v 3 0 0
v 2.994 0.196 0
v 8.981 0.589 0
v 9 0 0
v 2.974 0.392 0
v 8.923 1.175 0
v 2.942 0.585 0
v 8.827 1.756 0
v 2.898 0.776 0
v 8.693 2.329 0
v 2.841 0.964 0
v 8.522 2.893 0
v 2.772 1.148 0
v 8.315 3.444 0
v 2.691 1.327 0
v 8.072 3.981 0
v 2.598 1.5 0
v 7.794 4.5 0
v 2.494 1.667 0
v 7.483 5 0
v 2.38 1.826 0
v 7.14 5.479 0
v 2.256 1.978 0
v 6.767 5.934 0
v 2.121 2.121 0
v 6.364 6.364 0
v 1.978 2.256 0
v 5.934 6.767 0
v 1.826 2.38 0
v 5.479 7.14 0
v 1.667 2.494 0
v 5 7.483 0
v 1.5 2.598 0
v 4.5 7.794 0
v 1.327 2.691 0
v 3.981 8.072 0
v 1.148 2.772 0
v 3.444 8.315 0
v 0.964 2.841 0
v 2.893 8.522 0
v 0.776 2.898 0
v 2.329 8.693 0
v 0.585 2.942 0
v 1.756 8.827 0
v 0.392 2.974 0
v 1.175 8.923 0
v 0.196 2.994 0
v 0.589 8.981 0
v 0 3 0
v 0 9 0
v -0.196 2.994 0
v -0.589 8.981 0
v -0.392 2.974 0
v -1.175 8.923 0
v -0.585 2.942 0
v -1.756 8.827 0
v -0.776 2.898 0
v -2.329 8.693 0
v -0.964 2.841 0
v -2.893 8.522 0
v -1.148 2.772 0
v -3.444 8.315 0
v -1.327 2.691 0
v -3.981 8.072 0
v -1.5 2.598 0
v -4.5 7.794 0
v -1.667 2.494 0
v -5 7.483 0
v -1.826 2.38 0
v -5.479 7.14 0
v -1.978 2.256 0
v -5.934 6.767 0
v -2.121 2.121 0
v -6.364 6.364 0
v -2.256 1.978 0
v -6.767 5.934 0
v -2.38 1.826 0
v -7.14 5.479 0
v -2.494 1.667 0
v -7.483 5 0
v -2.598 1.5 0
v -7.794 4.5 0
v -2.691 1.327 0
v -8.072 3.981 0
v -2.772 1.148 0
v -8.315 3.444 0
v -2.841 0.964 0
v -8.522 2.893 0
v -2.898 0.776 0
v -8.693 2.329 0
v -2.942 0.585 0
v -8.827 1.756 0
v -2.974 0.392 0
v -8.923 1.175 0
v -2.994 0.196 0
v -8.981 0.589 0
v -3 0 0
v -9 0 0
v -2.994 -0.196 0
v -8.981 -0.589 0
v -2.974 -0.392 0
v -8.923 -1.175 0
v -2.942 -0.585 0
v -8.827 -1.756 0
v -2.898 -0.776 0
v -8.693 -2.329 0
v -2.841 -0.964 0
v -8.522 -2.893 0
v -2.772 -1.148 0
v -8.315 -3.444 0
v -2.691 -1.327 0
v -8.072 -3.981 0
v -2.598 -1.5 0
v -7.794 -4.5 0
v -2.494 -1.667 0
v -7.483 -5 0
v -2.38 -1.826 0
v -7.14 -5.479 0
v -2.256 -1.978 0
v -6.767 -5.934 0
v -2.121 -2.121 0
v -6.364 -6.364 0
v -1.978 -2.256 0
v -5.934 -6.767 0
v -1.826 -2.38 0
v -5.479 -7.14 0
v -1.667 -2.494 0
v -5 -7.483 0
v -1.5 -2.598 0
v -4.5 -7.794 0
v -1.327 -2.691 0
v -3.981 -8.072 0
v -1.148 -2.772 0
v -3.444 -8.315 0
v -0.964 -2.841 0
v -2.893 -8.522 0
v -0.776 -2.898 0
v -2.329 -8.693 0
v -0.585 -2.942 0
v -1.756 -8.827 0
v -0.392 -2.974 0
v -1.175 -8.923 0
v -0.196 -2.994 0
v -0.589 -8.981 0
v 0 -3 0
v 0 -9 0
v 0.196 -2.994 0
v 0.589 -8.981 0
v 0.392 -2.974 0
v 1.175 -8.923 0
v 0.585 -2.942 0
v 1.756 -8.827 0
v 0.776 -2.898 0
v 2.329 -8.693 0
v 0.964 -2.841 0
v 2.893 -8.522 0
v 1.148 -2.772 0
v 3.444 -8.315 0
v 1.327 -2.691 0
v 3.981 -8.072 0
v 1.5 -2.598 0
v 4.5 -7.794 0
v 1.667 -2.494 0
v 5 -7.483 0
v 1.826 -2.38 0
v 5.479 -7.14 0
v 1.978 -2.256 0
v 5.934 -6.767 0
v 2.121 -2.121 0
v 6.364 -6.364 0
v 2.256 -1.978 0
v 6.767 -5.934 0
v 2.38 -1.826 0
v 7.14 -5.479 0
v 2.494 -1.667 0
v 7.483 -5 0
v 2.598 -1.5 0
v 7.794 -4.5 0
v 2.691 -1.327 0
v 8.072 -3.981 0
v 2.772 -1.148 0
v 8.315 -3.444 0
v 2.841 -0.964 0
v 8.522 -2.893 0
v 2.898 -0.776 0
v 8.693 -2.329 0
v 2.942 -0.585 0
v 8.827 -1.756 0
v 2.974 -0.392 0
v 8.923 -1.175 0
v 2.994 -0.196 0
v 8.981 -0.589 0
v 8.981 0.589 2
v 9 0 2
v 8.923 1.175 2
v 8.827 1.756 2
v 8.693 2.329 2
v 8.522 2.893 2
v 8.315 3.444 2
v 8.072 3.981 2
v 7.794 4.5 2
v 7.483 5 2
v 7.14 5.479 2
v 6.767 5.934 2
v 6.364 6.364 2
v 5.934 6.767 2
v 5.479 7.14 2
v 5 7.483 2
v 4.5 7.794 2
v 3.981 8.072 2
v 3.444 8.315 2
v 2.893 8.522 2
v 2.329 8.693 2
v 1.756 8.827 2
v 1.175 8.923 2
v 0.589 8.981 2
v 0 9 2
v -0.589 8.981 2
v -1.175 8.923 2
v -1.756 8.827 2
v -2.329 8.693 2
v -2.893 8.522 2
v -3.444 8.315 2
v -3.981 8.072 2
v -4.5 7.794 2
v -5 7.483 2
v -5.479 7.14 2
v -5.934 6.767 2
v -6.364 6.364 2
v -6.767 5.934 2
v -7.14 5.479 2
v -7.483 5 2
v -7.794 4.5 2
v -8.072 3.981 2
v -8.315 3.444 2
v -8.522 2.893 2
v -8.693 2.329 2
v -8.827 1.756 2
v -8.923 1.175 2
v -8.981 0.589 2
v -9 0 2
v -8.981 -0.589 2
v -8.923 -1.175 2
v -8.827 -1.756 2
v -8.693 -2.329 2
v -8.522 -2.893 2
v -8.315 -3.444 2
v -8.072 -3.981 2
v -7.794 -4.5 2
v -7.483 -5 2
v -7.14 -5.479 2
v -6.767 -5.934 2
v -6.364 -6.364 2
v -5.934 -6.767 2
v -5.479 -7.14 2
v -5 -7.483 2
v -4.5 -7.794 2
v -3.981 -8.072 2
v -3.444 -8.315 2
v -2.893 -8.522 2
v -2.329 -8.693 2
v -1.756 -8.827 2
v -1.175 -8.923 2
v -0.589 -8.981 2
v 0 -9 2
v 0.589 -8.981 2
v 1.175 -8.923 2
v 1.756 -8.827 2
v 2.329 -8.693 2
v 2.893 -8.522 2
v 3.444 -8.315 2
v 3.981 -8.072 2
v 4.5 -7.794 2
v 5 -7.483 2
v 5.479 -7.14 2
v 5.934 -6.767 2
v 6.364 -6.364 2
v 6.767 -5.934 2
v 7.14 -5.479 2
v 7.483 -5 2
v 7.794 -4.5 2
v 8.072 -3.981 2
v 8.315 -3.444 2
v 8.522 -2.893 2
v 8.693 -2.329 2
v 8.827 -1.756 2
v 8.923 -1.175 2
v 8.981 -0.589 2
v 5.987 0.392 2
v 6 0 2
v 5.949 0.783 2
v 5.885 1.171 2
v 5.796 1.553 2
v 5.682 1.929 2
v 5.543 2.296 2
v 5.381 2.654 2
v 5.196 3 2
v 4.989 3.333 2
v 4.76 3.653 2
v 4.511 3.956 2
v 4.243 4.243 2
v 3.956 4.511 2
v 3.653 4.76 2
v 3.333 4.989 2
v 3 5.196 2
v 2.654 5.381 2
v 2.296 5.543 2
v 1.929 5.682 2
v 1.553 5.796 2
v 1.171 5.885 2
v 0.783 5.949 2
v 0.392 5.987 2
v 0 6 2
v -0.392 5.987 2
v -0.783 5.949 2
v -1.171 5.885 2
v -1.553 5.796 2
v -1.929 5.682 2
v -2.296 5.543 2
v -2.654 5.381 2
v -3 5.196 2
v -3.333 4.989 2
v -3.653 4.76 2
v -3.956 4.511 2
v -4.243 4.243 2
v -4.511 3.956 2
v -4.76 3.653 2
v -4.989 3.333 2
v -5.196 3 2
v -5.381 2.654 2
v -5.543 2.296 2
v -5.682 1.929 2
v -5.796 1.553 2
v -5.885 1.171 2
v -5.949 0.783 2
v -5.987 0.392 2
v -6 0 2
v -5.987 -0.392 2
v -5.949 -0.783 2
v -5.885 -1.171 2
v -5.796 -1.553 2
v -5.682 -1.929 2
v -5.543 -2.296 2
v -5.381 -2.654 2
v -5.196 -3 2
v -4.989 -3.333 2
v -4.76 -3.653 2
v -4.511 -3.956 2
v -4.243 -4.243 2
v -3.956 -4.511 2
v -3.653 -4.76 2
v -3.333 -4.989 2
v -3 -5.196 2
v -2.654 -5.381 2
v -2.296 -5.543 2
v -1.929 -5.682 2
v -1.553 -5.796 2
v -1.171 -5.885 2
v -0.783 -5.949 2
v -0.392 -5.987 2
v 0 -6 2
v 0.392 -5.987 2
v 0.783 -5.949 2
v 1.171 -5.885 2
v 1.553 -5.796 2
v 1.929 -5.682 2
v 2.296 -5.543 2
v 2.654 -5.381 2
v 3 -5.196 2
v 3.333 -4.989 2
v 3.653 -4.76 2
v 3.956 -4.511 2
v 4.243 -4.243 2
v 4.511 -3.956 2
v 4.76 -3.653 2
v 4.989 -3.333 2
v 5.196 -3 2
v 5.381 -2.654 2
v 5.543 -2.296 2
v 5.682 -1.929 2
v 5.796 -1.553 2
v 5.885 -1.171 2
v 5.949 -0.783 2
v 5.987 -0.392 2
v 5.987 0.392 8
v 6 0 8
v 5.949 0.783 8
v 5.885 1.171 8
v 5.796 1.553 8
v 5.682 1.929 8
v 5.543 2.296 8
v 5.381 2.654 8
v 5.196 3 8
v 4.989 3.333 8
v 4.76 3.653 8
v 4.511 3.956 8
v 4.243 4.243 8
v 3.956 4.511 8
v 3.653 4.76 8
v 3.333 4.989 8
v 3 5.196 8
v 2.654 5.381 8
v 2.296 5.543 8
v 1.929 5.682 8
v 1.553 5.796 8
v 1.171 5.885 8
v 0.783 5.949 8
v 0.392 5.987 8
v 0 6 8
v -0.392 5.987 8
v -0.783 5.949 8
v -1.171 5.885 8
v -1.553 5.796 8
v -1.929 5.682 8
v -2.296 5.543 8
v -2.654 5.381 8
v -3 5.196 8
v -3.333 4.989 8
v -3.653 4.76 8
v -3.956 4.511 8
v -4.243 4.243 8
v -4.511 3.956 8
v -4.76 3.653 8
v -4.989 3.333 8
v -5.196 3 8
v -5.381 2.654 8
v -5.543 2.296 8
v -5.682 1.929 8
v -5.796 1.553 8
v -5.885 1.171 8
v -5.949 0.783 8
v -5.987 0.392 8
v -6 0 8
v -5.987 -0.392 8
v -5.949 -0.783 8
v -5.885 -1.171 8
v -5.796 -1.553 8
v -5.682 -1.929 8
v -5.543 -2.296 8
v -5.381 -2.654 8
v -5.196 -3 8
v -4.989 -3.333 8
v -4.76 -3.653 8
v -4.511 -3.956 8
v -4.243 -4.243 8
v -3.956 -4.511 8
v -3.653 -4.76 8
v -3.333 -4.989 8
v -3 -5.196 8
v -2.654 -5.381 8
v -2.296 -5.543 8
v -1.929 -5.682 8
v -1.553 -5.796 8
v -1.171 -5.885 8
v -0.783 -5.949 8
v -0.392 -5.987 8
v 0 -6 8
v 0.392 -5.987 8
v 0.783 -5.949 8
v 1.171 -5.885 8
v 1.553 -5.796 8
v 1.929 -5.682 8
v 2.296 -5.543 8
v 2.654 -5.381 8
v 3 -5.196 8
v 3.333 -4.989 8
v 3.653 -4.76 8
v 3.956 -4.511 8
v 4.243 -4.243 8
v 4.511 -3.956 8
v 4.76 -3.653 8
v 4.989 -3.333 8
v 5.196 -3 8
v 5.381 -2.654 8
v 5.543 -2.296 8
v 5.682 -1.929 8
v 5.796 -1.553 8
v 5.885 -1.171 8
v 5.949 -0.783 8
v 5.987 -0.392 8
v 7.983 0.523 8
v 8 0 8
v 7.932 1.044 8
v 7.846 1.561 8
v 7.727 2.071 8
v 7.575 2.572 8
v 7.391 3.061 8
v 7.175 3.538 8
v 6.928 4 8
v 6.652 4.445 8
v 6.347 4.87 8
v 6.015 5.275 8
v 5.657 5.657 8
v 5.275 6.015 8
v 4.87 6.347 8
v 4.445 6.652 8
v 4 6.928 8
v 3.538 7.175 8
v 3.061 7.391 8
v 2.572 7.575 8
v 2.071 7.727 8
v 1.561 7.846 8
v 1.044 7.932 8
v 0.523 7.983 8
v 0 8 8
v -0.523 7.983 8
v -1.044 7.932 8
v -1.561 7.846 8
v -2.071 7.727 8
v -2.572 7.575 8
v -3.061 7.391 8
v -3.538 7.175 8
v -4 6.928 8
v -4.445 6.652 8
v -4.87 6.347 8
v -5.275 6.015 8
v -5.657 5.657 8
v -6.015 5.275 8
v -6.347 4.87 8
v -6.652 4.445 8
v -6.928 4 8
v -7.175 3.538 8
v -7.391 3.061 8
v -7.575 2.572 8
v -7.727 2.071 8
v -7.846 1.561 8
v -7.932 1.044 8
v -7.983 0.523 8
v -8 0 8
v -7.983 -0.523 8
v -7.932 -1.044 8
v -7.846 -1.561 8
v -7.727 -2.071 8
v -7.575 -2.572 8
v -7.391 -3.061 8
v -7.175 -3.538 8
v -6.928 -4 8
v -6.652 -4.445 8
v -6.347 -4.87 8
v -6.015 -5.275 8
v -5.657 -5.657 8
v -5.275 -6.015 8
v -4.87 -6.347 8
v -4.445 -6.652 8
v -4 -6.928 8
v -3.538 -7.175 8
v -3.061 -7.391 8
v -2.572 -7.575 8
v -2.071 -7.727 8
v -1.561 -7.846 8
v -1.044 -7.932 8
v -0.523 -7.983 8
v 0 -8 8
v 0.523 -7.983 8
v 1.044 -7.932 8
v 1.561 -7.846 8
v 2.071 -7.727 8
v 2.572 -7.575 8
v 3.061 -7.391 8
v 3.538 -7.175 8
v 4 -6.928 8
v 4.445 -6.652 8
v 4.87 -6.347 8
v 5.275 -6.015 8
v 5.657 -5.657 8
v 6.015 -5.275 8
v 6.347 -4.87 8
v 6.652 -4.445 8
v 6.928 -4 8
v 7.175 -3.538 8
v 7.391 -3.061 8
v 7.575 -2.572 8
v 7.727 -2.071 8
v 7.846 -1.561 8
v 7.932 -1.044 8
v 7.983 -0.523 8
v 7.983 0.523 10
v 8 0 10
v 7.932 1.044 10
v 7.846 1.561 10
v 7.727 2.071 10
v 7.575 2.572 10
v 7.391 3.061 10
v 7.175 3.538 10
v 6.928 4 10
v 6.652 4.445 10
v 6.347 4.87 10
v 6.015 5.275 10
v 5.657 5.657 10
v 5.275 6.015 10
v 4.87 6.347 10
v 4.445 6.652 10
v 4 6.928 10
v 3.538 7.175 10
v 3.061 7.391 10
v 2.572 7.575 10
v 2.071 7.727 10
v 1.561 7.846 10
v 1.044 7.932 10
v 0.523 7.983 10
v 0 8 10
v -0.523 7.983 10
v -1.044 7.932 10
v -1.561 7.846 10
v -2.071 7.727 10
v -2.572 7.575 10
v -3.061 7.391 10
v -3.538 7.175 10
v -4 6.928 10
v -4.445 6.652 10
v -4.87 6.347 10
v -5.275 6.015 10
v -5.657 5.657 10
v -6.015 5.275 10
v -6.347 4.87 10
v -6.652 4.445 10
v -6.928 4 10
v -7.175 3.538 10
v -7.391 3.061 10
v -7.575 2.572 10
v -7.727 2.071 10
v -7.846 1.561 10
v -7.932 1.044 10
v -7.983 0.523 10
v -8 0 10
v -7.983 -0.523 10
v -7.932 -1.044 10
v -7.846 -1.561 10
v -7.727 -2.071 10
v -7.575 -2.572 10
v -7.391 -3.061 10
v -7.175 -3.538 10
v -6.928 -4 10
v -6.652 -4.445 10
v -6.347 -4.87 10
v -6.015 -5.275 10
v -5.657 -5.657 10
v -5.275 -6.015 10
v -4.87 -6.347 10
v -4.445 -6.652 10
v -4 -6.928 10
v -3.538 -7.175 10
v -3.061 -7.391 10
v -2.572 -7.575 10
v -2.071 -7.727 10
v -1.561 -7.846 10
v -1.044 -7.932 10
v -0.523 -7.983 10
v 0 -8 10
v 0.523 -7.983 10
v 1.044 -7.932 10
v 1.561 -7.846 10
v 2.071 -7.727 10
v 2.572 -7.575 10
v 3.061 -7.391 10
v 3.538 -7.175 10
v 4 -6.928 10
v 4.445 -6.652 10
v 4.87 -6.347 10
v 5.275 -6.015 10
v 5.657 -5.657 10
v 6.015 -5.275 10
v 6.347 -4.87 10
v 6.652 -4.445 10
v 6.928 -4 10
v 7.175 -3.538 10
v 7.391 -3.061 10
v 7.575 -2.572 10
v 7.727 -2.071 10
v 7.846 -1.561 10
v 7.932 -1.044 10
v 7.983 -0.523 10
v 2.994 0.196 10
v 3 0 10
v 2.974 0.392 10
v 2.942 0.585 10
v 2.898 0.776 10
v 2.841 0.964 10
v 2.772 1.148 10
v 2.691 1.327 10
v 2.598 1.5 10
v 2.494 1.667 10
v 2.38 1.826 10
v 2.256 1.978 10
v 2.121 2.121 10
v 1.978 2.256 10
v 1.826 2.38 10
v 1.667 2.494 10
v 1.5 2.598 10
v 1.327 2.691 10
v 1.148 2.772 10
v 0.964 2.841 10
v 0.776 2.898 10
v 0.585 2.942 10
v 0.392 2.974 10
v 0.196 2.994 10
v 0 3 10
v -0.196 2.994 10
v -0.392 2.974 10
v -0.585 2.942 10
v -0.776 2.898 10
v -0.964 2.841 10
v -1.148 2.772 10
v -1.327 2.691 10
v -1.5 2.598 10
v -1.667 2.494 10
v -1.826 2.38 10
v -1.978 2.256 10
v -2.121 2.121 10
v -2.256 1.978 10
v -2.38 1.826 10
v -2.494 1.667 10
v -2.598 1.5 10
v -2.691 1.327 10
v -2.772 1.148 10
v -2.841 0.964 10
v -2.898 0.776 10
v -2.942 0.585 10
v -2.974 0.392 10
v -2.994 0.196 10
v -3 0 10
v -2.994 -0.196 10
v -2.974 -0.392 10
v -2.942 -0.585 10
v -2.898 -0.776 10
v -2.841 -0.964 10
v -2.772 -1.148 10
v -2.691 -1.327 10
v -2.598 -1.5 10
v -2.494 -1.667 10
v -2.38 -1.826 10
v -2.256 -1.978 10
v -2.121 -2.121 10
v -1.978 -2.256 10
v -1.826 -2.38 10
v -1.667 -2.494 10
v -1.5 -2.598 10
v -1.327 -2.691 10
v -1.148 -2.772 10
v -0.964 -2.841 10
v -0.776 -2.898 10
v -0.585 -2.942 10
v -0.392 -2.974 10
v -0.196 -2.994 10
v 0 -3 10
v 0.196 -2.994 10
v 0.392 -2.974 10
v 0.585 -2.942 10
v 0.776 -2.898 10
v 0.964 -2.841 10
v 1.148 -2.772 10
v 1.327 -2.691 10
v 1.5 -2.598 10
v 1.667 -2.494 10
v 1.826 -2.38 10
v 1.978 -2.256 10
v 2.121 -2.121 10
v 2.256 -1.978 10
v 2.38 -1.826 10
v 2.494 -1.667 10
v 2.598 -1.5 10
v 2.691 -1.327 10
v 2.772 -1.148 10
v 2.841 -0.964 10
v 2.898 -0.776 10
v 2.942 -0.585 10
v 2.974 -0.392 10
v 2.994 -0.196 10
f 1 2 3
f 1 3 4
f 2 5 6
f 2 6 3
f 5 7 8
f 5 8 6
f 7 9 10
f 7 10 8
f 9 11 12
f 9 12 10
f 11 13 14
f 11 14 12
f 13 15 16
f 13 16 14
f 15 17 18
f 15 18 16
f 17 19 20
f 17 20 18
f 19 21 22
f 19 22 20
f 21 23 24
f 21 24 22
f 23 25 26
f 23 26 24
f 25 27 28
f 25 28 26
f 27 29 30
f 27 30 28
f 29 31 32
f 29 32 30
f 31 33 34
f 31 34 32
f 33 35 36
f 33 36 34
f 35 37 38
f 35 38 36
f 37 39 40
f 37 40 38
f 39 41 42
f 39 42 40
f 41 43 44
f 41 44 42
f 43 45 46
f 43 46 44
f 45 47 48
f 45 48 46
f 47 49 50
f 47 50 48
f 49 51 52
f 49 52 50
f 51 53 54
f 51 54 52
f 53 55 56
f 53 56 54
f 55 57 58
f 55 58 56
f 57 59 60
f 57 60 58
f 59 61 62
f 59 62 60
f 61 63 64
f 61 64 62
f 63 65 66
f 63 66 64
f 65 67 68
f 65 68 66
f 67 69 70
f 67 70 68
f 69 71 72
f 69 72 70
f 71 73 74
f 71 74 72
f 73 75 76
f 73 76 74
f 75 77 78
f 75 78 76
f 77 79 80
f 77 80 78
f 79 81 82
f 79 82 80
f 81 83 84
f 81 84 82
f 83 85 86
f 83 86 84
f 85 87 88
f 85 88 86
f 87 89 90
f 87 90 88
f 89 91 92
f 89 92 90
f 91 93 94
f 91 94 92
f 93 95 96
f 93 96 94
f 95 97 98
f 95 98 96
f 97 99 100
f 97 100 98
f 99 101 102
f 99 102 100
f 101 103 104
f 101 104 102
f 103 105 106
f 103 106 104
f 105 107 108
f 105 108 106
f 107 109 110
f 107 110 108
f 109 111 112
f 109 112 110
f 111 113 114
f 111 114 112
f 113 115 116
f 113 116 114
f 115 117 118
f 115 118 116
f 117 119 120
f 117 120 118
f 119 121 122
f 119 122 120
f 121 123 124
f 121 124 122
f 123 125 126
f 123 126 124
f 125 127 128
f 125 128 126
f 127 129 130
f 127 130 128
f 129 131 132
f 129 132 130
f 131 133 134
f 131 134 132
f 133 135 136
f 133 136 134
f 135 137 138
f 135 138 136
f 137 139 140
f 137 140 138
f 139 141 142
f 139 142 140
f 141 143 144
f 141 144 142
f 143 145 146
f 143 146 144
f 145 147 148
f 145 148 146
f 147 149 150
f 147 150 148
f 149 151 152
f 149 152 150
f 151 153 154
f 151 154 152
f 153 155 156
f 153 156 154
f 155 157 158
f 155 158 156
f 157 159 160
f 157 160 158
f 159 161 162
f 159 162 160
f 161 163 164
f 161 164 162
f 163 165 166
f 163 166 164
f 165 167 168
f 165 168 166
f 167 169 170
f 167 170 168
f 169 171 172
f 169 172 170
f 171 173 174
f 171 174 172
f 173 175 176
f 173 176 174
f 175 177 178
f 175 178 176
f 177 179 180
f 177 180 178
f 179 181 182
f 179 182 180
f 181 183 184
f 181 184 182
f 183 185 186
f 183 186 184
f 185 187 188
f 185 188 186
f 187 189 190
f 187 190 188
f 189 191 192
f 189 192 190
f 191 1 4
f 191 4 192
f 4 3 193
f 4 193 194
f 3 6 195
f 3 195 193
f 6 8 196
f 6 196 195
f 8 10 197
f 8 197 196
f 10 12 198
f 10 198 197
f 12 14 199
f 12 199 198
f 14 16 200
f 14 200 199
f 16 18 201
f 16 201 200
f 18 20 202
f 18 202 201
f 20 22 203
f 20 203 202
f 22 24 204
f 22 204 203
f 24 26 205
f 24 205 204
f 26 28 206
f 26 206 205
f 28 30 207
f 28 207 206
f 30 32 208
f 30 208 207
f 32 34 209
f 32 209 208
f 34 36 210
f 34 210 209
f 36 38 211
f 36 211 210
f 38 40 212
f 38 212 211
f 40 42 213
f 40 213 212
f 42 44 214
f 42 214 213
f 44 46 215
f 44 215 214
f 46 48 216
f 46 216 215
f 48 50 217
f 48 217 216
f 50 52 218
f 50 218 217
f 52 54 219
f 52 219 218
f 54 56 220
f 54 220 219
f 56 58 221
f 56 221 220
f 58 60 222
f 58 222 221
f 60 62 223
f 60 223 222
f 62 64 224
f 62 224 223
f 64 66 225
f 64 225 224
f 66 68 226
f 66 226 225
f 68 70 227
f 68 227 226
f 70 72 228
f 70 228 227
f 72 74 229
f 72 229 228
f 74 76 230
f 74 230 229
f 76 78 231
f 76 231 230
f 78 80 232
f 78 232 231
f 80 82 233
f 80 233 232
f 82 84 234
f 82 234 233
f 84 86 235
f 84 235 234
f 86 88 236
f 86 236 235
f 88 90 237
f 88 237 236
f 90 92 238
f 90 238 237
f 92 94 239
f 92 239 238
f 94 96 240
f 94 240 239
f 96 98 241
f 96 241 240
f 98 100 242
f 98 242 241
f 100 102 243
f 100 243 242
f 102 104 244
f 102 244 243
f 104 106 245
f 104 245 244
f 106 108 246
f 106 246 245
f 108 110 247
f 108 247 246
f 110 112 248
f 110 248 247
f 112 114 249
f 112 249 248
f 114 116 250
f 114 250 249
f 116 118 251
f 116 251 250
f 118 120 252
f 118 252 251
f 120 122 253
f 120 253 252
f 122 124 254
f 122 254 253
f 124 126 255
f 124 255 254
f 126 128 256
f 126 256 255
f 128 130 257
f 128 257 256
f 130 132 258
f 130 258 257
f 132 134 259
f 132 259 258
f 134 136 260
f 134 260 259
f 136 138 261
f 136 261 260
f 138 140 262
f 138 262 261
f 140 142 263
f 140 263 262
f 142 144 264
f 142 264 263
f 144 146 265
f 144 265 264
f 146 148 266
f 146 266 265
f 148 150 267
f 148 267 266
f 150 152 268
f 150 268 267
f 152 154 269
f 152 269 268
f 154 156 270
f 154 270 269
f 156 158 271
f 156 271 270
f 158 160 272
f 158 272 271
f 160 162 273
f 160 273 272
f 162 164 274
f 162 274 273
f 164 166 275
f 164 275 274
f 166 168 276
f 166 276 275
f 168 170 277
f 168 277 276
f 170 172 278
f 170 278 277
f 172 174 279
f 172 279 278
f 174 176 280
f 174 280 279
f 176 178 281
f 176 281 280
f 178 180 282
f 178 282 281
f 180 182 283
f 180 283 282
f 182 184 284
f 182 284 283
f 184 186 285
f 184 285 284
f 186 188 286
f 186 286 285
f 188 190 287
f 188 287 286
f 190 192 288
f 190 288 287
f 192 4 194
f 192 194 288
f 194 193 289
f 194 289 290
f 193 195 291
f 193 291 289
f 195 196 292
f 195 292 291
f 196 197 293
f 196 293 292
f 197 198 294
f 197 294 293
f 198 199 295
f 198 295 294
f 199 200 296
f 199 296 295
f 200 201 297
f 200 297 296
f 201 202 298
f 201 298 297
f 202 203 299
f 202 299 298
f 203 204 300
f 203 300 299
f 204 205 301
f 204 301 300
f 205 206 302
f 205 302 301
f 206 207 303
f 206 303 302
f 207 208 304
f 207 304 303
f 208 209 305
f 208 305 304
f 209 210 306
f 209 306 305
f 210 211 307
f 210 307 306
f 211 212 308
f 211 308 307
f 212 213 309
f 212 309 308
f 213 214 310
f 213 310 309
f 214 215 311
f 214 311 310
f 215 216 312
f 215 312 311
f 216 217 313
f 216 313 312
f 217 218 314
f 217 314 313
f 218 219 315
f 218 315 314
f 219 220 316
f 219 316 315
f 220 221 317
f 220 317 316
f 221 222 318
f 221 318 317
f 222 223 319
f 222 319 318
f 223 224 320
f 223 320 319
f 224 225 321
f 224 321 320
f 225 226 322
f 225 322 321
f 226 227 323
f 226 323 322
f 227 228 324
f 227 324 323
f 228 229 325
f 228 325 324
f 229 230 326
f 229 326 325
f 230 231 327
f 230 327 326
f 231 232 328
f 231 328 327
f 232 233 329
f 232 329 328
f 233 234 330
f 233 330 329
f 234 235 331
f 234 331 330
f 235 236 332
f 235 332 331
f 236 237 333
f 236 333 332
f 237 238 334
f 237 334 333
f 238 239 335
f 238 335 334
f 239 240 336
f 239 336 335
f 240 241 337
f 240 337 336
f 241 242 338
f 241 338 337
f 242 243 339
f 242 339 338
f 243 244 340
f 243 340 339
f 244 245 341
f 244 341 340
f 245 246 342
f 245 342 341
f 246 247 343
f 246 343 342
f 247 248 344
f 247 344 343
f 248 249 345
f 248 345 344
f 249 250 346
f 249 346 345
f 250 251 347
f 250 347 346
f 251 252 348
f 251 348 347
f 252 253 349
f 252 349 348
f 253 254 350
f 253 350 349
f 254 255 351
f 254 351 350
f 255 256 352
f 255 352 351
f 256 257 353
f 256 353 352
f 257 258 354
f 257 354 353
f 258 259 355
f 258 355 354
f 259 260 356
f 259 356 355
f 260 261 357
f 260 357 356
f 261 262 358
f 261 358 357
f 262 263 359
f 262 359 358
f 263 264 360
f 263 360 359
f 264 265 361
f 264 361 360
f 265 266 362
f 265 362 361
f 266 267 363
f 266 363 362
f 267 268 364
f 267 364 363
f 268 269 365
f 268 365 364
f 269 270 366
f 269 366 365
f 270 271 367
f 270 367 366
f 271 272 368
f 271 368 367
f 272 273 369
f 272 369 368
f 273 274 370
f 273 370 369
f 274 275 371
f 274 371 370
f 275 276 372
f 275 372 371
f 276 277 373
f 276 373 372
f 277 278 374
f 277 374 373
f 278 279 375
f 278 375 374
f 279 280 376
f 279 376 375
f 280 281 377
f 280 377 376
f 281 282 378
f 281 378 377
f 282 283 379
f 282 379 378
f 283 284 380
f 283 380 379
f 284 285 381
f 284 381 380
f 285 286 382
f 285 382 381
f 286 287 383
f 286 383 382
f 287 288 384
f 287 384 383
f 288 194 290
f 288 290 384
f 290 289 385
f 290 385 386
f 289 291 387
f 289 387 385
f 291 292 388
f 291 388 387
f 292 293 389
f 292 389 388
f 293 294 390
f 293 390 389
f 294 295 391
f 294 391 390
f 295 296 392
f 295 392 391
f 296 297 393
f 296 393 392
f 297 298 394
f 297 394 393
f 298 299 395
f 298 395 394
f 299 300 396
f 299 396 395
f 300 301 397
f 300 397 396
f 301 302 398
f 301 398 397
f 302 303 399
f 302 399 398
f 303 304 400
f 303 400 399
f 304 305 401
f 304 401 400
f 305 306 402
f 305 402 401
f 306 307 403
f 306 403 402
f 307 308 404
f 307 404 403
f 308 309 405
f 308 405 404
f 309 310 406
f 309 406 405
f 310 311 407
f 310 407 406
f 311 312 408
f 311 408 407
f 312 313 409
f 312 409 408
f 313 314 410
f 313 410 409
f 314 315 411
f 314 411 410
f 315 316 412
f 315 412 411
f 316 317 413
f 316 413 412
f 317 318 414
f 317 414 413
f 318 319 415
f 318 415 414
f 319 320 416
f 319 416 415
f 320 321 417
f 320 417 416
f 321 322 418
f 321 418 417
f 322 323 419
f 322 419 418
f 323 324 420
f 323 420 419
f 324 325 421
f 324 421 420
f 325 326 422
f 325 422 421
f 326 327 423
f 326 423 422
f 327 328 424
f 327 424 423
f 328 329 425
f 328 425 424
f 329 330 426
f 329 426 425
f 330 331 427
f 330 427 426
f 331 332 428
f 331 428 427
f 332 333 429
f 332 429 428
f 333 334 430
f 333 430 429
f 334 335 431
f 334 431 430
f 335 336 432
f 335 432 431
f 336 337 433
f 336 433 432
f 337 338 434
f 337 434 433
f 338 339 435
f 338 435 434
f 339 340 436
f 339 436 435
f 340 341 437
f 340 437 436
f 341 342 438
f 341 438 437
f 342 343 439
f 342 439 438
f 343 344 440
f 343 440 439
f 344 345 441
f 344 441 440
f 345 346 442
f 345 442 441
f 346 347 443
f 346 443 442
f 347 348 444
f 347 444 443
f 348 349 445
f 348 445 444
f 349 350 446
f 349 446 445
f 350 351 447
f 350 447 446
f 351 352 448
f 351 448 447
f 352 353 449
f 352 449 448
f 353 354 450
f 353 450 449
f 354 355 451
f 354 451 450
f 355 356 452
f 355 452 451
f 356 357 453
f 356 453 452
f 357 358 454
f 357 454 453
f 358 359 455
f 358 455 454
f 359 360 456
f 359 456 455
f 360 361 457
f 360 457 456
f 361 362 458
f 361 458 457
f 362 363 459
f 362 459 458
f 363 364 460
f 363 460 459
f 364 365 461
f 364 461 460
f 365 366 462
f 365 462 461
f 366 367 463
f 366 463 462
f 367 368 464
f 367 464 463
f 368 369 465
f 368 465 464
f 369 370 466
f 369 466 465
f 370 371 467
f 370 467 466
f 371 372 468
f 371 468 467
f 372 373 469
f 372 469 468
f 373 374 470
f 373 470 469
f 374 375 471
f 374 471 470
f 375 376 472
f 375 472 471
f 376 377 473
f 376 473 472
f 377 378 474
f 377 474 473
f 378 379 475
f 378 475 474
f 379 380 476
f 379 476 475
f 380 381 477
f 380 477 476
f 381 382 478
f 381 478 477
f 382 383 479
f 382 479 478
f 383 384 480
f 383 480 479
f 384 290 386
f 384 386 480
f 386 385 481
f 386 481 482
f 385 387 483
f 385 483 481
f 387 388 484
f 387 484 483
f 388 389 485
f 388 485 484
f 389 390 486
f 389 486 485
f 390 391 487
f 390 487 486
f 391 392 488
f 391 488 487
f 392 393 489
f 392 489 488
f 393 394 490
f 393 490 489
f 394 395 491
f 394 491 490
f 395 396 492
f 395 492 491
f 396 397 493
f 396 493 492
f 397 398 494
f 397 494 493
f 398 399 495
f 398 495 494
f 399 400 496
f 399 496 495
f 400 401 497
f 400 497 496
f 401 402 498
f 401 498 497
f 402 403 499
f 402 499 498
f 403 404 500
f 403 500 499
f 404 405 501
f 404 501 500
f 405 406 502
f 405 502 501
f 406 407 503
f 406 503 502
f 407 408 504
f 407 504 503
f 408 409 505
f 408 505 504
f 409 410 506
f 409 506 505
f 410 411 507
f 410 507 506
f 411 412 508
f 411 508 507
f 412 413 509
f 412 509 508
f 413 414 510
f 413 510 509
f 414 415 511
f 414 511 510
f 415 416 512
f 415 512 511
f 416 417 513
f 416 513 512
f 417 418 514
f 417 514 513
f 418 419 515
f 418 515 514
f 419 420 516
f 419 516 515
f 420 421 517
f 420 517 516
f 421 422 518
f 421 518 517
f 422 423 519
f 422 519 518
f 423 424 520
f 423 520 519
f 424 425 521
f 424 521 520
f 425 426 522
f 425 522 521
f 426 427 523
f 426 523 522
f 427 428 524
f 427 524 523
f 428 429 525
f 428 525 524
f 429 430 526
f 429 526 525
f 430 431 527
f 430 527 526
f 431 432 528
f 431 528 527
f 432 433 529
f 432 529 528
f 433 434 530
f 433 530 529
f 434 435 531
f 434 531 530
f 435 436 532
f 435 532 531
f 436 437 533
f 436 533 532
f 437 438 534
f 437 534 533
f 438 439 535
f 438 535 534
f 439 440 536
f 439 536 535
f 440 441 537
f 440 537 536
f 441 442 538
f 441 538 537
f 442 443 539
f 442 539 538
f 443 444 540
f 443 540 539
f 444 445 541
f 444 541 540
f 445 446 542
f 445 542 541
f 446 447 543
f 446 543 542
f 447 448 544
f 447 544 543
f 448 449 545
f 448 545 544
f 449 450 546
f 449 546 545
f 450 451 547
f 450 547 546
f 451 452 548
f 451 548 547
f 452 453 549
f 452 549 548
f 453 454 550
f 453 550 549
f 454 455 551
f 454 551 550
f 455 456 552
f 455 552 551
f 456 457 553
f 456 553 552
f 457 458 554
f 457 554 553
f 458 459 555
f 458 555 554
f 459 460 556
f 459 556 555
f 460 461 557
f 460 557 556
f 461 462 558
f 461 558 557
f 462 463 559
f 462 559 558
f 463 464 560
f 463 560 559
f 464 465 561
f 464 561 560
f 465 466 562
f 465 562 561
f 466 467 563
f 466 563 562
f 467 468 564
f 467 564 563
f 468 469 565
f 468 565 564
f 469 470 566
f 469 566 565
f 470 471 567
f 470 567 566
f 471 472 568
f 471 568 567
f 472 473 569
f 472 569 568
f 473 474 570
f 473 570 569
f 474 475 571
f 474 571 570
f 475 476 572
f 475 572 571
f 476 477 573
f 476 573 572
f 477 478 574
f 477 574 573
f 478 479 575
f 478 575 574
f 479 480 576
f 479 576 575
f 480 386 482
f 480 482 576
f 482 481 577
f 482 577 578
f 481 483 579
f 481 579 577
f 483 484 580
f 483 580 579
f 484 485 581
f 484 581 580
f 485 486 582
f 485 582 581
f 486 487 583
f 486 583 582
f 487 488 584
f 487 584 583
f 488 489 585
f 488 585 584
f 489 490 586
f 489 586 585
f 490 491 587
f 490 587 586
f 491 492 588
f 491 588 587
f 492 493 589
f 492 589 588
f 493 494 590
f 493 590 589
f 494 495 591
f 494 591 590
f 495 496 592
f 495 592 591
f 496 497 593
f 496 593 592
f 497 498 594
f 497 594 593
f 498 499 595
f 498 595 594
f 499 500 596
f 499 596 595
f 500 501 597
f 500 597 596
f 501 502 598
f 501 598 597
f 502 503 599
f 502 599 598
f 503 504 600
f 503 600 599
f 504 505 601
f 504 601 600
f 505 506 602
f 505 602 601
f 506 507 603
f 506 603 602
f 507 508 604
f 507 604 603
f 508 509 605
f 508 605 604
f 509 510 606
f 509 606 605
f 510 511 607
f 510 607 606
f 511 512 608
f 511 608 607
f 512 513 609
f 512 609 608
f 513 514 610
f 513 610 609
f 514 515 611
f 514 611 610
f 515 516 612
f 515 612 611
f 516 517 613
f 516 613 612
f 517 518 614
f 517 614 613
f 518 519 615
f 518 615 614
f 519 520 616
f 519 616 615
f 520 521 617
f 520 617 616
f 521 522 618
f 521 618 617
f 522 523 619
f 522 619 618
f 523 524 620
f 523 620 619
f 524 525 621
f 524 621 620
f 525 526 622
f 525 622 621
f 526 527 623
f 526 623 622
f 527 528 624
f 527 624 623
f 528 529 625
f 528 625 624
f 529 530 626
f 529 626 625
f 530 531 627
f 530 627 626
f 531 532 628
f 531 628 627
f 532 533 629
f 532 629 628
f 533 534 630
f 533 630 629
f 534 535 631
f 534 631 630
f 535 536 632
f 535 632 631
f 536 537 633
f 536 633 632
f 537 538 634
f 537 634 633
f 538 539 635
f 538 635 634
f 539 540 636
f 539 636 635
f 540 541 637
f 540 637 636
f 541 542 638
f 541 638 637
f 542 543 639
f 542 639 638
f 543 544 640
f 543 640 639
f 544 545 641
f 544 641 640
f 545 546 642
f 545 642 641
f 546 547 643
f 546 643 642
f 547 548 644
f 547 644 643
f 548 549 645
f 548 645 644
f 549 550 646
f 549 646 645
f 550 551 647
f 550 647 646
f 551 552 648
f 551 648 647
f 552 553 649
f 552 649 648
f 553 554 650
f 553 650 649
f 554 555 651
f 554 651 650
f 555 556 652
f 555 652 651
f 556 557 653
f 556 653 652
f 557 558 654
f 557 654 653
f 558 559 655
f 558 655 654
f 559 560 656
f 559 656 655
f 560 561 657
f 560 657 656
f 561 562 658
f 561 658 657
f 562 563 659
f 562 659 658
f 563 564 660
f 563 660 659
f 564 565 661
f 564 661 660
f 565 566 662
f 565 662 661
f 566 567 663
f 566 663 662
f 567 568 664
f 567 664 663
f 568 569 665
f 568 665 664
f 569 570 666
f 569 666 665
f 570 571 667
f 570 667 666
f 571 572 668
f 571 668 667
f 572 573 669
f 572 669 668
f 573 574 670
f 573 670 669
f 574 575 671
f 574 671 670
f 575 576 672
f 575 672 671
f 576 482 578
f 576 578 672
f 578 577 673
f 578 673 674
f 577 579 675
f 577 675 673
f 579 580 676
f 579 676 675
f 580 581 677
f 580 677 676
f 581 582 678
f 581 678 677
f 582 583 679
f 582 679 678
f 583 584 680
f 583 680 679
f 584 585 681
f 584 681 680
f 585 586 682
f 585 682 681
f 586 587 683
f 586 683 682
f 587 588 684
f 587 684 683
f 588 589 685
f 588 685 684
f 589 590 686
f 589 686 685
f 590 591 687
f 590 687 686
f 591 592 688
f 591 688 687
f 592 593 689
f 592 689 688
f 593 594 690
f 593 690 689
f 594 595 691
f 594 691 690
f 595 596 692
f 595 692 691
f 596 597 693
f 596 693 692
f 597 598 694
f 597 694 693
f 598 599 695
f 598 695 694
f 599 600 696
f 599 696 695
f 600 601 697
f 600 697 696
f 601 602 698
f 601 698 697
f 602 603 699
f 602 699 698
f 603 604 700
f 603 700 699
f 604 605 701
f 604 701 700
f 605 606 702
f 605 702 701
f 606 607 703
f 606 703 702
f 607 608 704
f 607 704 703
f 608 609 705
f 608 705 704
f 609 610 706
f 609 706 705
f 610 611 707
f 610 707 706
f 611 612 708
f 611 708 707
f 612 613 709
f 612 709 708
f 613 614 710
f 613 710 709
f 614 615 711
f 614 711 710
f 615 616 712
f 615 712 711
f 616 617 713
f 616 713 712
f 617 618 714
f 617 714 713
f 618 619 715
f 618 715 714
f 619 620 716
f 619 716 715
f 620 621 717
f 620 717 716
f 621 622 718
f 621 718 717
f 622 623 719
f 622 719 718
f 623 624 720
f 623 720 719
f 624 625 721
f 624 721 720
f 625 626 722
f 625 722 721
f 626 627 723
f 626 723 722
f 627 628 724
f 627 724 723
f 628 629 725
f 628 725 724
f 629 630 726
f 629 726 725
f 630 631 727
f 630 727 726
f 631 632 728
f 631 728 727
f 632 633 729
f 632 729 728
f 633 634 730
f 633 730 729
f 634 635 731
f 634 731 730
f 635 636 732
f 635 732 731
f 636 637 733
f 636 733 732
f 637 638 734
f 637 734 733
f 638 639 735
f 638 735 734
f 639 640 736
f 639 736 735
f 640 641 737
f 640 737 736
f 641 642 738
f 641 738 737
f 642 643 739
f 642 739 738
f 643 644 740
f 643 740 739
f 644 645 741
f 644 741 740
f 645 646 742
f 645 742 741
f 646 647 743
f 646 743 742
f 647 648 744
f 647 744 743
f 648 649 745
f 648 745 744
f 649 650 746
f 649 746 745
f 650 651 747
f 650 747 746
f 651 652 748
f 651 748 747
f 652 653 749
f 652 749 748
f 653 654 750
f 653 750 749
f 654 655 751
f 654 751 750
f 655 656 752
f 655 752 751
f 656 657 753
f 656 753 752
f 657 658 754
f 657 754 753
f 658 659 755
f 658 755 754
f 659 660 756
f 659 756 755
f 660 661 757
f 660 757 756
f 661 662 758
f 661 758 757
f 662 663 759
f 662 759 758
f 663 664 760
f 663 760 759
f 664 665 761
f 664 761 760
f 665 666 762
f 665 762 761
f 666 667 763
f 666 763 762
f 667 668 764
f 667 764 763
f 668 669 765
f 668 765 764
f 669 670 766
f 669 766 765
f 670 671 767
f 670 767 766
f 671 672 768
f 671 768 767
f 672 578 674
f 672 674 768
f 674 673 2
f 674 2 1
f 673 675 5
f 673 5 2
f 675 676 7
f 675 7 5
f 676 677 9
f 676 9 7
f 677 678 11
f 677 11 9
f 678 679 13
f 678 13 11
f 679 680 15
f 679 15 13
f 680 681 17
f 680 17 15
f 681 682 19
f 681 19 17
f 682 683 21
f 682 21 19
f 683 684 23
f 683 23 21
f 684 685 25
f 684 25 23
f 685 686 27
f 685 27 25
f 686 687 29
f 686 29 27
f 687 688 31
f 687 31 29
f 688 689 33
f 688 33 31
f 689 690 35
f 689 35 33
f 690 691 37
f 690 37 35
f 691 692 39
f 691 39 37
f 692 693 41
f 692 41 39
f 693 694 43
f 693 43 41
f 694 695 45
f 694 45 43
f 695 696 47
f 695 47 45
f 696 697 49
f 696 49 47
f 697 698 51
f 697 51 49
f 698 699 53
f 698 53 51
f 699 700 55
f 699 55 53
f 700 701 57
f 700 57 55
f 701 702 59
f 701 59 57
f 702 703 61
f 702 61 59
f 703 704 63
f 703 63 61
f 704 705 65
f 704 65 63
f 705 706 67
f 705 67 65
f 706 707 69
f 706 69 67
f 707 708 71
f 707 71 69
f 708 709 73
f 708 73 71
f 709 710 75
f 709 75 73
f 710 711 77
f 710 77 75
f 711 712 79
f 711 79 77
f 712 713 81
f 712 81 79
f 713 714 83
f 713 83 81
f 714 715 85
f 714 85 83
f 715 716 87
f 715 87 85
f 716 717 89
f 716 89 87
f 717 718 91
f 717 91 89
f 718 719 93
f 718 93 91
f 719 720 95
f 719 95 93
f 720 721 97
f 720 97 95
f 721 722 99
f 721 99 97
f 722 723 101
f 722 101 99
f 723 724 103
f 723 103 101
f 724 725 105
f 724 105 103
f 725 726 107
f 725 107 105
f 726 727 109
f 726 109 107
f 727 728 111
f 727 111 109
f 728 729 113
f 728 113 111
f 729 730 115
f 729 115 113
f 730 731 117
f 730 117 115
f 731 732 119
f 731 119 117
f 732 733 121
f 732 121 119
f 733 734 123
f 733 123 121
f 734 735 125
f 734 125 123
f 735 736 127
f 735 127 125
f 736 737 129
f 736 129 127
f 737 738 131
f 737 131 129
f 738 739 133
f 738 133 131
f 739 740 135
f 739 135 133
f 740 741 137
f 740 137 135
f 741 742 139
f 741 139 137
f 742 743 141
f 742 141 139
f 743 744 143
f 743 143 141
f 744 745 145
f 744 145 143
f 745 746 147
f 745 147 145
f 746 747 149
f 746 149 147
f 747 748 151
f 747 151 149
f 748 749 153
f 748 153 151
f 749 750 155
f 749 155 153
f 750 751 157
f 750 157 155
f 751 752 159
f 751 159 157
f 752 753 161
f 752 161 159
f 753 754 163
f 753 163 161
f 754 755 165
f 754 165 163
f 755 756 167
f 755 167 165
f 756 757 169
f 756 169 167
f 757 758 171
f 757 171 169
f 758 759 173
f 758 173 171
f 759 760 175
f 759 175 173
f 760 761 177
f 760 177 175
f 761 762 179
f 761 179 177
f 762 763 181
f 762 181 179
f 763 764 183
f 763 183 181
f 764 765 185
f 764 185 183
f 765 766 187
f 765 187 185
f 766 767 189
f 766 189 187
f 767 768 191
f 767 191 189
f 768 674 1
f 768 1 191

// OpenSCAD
// Original MechIntel educational model. CC0-1.0. Units: mm.
// Not a standardized or load-rated component.
$fn=96;
// Section points: [radius, height], mm. Edit to change the profile.
section=[[3, 0], [9, 0], [9, 2], [6, 2], [6, 8], [8, 8], [8, 10], [3, 10]];
rotate_extrude($fn=96) polygon(points=section);
